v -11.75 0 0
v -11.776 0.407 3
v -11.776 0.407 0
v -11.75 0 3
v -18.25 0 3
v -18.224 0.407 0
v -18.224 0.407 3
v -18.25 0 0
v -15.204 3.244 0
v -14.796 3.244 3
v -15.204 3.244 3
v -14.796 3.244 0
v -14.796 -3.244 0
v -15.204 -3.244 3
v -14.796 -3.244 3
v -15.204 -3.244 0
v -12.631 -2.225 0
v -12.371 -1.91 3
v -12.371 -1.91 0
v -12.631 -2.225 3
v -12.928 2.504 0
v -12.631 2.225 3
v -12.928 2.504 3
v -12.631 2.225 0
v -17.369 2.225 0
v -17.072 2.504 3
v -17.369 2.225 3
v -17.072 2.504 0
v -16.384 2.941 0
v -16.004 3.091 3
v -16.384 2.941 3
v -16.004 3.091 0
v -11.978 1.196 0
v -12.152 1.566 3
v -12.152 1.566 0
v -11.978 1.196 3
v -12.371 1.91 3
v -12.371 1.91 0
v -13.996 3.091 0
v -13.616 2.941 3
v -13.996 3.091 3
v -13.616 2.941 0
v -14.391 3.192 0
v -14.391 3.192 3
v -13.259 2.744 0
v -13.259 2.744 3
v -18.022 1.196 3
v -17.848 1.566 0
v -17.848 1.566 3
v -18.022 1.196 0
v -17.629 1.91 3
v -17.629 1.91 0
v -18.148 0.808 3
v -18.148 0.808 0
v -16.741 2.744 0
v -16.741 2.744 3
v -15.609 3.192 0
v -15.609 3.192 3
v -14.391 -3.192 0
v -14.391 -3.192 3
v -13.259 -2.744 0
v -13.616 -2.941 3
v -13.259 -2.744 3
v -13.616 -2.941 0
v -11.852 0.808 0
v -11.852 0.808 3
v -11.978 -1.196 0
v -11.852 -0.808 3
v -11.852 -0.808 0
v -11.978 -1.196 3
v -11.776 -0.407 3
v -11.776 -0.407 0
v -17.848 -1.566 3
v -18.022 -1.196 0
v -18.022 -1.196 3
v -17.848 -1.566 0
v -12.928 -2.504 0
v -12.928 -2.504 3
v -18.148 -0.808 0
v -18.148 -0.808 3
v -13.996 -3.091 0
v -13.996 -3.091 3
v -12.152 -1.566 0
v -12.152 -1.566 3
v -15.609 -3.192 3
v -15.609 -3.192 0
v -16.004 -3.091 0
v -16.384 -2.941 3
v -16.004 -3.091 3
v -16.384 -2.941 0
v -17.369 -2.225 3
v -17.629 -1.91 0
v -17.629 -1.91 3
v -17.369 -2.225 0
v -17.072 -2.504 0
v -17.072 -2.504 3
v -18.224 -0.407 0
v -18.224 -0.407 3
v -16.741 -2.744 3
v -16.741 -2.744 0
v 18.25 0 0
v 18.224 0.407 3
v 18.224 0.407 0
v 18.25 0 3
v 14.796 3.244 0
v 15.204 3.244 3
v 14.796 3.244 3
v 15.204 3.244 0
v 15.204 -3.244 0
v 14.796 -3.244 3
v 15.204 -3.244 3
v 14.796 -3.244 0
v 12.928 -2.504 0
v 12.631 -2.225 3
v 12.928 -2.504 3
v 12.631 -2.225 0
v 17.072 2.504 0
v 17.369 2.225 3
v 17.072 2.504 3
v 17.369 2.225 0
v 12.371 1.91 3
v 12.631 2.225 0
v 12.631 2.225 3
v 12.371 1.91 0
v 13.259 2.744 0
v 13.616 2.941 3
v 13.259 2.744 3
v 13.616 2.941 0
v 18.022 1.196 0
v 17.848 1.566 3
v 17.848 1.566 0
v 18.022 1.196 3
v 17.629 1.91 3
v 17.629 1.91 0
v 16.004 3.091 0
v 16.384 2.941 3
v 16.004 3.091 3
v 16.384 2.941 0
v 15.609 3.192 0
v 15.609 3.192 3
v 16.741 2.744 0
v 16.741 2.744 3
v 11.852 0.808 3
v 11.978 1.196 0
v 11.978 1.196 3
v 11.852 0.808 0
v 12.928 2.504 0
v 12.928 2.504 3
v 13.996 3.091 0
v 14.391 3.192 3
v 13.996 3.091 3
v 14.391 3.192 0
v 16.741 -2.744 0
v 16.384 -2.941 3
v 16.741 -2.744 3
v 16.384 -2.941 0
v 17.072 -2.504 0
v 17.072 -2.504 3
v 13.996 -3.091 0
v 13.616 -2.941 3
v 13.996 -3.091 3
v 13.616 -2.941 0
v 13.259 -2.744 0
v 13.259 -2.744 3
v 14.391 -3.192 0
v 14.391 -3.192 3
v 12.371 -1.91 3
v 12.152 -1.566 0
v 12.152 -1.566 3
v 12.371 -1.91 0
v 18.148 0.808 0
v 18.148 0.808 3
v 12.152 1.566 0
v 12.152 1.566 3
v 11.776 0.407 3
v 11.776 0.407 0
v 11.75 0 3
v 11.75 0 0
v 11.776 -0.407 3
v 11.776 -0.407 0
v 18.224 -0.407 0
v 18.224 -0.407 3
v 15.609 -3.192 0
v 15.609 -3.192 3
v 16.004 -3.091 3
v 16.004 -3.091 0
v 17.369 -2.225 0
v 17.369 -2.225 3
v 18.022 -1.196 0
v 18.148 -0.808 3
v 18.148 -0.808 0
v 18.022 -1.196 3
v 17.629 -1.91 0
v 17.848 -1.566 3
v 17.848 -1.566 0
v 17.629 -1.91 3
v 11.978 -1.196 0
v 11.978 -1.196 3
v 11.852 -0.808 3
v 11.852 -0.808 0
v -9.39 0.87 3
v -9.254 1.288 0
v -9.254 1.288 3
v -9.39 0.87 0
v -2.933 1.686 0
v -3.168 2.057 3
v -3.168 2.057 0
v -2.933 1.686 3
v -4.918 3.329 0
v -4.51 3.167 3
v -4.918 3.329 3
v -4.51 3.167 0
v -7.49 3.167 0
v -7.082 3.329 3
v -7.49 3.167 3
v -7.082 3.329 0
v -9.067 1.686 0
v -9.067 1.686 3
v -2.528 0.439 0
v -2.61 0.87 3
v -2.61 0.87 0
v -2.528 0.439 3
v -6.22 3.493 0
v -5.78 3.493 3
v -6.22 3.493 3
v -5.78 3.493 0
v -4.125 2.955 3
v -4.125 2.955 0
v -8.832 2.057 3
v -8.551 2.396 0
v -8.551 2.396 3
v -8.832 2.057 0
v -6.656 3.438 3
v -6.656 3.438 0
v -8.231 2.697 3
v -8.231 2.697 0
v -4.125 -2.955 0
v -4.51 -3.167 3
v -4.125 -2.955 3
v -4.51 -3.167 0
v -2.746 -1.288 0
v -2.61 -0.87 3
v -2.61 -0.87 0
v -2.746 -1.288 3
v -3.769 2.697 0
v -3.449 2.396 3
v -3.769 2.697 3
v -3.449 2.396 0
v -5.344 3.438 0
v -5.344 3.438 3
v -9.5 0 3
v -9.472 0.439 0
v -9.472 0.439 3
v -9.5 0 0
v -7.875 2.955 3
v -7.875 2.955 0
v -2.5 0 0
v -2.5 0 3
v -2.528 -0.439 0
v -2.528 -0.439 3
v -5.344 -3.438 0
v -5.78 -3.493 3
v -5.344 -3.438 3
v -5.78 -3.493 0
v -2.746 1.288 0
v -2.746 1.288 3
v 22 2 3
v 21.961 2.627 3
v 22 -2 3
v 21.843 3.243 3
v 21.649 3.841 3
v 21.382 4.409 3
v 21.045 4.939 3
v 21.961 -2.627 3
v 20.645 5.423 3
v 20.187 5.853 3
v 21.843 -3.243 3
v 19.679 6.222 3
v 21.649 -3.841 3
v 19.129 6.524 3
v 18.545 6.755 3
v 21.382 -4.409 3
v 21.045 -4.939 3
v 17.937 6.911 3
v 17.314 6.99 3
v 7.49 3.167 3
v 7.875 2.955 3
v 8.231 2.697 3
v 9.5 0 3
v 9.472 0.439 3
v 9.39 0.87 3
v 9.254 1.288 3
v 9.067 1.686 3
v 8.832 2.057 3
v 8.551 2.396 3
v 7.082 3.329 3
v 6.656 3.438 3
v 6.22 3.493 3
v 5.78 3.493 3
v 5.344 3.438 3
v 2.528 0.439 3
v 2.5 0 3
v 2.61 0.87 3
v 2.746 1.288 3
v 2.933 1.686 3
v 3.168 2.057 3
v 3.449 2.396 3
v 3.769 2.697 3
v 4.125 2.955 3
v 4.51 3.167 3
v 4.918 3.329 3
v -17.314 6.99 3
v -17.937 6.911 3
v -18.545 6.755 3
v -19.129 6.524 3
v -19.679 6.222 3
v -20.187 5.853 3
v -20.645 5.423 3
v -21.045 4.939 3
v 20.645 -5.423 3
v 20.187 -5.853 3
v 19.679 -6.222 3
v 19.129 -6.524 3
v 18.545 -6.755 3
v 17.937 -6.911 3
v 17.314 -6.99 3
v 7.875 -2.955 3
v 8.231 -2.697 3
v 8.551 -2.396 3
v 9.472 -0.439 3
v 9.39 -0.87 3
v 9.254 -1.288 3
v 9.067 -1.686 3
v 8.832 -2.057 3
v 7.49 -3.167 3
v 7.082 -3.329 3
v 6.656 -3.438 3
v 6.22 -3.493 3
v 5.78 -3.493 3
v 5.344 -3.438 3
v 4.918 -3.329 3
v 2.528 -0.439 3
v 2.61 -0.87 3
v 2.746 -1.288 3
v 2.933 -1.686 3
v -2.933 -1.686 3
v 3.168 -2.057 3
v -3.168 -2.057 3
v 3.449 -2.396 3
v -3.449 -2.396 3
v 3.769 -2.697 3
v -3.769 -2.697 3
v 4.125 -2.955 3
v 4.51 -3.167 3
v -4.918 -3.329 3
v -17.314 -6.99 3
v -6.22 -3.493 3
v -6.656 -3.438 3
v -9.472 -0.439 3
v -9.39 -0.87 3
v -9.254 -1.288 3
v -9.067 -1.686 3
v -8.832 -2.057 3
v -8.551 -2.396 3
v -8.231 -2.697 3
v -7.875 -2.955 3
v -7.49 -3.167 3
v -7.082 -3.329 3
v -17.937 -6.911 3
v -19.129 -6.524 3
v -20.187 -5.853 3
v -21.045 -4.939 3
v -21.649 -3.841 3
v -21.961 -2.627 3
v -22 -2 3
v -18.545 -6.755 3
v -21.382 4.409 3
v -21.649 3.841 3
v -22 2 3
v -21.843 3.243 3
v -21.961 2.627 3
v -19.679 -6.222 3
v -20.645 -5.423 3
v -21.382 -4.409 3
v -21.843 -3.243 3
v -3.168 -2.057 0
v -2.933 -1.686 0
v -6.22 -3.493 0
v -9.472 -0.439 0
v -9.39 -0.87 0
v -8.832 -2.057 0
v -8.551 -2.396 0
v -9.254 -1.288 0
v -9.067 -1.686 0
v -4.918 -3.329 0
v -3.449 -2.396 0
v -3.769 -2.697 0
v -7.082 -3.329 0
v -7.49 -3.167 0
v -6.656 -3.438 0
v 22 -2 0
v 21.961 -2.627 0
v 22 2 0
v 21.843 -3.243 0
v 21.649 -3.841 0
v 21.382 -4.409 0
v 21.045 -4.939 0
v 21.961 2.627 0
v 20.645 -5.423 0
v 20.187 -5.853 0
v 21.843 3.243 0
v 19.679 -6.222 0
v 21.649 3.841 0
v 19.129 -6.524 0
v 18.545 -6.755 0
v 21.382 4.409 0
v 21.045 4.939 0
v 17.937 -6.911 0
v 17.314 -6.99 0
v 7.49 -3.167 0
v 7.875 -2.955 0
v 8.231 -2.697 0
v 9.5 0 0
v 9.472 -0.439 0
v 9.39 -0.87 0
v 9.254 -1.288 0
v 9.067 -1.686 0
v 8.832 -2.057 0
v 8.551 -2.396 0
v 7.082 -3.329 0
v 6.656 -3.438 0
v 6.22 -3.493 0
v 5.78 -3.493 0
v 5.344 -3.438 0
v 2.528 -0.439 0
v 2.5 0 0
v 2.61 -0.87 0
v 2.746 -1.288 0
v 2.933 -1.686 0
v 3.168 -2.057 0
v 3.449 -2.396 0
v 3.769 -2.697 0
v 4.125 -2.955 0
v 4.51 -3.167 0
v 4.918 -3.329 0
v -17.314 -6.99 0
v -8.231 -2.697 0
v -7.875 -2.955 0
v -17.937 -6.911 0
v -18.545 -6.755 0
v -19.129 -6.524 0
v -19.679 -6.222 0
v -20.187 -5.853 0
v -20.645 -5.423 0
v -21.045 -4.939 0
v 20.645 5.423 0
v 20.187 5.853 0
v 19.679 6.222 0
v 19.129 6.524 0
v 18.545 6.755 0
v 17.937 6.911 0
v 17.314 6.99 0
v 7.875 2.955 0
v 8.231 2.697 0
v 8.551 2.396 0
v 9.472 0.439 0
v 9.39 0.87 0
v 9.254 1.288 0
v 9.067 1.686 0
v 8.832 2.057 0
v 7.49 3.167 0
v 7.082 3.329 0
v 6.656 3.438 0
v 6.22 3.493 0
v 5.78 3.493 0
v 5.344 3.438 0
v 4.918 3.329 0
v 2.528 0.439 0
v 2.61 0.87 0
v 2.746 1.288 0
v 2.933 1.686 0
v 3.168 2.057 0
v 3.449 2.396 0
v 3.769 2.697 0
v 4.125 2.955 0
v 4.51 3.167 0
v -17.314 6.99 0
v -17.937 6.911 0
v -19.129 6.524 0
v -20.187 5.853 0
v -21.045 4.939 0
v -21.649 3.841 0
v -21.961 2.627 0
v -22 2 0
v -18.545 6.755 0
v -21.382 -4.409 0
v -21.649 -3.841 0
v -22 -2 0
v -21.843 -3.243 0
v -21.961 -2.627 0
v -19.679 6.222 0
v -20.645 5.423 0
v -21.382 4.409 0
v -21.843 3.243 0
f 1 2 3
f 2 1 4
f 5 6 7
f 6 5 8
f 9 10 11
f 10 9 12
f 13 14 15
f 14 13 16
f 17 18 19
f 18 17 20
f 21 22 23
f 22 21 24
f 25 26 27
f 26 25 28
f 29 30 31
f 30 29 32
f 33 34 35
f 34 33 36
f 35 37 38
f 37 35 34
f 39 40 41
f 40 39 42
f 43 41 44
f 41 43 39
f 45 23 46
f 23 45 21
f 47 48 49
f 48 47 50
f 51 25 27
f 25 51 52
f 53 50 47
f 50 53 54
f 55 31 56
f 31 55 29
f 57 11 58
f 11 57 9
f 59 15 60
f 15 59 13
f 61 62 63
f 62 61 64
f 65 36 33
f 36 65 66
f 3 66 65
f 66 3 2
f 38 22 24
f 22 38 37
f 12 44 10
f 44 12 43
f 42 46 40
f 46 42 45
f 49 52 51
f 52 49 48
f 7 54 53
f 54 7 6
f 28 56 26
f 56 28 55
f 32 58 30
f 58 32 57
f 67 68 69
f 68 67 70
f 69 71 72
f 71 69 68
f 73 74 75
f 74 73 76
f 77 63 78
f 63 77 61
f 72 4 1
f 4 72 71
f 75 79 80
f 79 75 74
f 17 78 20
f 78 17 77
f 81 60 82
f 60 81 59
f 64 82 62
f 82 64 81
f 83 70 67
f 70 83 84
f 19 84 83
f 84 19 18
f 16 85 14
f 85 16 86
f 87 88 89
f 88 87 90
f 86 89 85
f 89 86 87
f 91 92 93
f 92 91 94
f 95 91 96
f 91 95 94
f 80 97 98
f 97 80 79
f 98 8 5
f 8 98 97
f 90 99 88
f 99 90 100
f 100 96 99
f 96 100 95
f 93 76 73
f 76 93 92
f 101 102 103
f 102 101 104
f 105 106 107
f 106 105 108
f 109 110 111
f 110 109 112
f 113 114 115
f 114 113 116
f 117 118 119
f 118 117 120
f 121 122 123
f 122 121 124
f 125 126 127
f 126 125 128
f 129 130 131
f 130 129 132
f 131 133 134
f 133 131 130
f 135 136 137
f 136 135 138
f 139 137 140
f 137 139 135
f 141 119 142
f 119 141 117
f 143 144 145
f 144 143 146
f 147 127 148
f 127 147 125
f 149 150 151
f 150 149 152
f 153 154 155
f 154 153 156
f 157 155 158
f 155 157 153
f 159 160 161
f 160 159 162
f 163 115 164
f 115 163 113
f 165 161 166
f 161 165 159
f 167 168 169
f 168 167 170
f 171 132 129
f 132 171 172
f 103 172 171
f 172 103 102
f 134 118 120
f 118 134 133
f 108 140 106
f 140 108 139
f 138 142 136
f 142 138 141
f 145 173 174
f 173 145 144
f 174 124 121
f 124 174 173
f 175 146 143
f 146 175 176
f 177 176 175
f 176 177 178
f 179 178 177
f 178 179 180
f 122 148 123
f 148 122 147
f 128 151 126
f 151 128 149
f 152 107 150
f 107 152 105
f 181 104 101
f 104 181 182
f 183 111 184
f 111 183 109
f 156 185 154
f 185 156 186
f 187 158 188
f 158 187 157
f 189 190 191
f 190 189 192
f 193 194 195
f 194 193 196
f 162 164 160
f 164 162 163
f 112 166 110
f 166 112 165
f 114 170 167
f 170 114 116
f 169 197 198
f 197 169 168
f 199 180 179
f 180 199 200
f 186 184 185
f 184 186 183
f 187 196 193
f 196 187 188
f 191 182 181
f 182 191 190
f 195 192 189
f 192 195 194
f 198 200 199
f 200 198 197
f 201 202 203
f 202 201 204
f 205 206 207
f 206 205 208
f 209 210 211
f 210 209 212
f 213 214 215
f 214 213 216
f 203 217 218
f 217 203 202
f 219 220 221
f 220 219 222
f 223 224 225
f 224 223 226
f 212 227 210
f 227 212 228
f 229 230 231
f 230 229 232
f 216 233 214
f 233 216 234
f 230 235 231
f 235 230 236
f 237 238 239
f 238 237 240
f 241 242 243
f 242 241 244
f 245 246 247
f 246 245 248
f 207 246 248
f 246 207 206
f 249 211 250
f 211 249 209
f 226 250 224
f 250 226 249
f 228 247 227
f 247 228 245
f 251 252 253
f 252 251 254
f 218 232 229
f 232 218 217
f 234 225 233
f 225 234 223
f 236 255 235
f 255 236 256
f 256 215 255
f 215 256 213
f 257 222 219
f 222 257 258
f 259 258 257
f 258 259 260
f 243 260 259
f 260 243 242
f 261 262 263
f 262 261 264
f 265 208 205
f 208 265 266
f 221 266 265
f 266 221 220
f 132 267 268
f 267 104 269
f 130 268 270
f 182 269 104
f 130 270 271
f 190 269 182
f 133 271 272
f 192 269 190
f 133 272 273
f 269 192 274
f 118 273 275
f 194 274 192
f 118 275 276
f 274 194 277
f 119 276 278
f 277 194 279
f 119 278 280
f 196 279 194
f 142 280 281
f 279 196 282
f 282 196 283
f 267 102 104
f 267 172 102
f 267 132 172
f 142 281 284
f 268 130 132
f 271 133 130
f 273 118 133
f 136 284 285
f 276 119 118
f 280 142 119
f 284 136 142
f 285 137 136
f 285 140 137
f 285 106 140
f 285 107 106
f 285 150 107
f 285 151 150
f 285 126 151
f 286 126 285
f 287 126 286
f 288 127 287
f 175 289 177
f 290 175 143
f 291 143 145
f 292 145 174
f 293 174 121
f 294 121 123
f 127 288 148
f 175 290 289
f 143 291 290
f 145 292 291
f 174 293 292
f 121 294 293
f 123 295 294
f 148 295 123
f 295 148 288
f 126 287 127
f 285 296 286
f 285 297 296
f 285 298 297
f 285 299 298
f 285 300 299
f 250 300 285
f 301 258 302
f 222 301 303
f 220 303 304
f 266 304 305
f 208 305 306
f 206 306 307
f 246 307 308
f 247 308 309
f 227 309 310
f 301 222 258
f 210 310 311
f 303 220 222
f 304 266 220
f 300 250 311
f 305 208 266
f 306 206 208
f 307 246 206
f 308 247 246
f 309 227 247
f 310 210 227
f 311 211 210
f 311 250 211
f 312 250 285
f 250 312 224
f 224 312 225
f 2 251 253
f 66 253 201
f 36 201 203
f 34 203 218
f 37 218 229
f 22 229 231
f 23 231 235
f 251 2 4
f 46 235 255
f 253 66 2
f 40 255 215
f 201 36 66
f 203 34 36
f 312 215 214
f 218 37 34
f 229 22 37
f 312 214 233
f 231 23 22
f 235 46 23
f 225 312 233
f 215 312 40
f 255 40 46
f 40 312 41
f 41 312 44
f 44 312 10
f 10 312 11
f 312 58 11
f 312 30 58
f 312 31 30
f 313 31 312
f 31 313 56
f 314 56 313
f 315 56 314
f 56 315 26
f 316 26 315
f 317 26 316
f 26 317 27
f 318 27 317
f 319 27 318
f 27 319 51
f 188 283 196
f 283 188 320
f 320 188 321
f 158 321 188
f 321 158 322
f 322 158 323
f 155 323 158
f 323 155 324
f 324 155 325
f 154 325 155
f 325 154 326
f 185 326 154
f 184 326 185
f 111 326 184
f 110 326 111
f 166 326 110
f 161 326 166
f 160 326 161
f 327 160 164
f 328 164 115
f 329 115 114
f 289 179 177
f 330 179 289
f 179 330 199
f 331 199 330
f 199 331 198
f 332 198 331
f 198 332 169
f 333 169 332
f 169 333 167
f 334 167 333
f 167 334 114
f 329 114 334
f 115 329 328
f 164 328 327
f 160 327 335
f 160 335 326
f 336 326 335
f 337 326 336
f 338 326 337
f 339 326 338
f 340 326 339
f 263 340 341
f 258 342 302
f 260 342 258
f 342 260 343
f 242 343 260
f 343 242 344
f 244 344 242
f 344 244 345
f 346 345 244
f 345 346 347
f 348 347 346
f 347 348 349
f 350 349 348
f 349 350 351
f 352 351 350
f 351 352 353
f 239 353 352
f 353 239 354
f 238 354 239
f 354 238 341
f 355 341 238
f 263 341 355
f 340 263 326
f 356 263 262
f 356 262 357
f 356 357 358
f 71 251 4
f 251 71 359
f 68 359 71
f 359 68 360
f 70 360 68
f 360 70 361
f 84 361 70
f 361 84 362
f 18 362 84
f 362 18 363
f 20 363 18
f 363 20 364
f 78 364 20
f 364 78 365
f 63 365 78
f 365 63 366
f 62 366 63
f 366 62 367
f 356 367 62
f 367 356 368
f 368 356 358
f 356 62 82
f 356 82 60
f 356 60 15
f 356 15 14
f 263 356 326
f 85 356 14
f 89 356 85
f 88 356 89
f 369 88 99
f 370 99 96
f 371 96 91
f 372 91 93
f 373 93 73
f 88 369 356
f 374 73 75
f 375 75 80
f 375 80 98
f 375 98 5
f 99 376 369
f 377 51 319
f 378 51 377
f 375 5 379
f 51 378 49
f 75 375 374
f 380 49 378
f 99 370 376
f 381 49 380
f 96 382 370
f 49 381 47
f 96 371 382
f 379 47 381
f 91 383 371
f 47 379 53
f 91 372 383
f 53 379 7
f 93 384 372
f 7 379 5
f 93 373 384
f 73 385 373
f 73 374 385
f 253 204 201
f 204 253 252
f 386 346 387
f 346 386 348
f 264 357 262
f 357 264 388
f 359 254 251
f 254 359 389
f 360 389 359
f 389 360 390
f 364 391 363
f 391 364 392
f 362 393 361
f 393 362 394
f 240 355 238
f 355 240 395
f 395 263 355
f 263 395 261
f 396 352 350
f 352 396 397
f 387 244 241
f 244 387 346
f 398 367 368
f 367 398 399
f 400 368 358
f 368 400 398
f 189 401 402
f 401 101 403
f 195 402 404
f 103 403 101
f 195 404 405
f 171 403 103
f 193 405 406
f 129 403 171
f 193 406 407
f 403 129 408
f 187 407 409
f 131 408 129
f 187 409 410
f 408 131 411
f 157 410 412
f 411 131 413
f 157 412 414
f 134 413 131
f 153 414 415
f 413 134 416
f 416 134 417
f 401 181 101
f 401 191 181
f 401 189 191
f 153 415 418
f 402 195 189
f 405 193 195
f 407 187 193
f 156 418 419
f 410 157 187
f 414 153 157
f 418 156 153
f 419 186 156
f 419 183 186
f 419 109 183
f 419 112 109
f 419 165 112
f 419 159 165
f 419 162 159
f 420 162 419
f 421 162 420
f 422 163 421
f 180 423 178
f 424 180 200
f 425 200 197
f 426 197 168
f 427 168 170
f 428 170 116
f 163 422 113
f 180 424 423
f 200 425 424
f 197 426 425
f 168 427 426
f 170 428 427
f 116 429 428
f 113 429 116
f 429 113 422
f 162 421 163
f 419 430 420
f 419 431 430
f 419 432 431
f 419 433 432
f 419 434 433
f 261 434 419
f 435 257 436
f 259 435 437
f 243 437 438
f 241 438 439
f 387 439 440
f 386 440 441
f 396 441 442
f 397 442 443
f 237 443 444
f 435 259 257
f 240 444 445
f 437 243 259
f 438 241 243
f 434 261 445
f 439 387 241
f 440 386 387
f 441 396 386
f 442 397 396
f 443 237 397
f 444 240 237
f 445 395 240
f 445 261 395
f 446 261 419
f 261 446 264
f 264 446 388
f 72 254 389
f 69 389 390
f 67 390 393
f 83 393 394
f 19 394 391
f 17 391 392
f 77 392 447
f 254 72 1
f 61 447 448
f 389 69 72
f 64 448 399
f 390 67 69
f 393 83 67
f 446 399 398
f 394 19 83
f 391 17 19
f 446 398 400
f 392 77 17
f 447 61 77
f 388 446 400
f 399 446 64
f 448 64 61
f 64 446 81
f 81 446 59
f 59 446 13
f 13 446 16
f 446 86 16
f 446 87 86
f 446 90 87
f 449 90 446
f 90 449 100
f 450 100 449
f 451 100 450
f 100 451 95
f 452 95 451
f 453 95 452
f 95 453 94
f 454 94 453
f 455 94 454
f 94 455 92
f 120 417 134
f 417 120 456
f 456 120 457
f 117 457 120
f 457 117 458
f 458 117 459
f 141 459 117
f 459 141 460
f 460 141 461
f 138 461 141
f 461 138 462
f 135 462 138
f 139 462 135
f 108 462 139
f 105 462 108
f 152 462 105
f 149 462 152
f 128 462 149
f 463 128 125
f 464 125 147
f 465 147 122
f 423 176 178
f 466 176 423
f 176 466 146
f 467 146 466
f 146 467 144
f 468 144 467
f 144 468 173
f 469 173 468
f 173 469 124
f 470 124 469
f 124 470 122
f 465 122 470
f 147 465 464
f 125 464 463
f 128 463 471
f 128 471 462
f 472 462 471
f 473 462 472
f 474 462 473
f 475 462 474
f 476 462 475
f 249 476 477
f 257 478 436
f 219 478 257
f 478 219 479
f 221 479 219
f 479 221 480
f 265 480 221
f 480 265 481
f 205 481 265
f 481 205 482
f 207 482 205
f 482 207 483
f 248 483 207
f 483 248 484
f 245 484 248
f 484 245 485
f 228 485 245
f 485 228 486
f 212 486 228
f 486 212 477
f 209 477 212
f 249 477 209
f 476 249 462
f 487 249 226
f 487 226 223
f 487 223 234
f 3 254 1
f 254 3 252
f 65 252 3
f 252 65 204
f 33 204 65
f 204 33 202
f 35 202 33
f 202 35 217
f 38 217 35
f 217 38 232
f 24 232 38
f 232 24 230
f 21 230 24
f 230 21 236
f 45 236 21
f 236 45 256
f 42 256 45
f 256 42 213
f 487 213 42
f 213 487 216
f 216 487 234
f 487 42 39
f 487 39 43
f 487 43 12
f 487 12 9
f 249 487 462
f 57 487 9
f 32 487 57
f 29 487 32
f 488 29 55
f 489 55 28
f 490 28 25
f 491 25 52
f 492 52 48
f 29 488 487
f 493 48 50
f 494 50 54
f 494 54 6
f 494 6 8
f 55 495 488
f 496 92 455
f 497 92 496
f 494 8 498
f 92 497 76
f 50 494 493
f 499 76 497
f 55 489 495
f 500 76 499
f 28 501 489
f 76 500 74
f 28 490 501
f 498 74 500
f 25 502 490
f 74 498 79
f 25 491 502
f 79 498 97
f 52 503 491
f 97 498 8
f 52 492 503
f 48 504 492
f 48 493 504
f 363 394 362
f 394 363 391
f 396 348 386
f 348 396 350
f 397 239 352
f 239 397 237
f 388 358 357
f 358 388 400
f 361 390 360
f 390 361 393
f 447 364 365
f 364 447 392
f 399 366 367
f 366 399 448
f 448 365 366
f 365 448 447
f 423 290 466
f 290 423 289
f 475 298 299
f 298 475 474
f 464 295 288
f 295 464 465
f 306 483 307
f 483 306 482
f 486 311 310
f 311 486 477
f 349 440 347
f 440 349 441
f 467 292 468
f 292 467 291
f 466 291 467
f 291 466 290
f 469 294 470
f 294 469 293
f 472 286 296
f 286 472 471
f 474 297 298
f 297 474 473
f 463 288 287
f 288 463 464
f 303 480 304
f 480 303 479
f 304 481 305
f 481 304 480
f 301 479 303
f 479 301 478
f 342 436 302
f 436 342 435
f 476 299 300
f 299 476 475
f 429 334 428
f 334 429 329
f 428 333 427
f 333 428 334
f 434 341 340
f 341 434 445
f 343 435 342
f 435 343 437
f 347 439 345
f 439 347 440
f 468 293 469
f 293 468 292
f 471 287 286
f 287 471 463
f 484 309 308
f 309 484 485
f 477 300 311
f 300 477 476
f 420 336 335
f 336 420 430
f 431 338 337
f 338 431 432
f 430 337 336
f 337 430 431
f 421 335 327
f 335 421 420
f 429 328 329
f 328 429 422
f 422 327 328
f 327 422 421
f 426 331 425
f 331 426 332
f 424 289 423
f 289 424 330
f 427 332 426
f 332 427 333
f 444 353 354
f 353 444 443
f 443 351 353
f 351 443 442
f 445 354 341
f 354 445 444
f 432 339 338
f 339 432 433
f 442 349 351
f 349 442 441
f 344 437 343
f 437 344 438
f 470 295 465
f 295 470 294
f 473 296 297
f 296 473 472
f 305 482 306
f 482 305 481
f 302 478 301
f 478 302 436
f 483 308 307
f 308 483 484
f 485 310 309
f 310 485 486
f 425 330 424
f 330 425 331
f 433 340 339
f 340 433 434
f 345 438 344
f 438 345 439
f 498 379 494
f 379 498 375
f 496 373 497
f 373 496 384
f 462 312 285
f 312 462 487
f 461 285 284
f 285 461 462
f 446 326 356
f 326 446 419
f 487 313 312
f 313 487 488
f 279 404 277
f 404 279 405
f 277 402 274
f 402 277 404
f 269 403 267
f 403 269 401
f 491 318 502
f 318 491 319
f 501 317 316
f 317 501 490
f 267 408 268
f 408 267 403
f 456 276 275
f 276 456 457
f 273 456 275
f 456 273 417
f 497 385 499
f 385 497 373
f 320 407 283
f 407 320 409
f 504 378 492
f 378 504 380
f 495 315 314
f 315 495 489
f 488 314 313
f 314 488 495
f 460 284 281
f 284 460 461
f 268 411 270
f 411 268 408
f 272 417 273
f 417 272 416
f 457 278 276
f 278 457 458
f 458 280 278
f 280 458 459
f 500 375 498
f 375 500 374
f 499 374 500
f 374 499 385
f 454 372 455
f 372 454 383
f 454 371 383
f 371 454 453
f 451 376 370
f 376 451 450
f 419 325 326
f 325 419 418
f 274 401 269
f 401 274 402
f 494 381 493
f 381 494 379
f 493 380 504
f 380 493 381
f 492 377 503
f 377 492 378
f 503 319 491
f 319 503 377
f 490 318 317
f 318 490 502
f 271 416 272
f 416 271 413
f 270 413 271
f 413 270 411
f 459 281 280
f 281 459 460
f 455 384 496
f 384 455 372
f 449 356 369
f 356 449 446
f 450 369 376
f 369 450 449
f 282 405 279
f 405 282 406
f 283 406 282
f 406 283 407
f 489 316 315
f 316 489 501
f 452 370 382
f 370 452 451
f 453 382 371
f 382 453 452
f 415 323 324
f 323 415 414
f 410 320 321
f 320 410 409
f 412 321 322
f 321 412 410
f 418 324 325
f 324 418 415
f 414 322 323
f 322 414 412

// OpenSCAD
$fn = 50;


difference() {
	union() {
		hull() {
			translate(v = [-17.0000000000, 2.0000000000, 0]) {
				cylinder(h = 3, r = 5);
			}
			translate(v = [17.0000000000, 2.0000000000, 0]) {
				cylinder(h = 3, r = 5);
			}
			translate(v = [-17.0000000000, -2.0000000000, 0]) {
				cylinder(h = 3, r = 5);
			}
			translate(v = [17.0000000000, -2.0000000000, 0]) {
				cylinder(h = 3, r = 5);
			}
		}
	}
	union() {
		#translate(v = [-15.0000000000, 0.0000000000, 0]) {
			cylinder(h = 3, r = 3.2500000000);
		}
		#translate(v = [15.0000000000, 0.0000000000, 0]) {
			cylinder(h = 3, r = 3.2500000000);
		}
		#translate(v = [-15.0000000000, 0.0000000000, -100.0000000000]) {
			cylinder(h = 200, r = 3.2500000000);
		}
		#translate(v = [-15.0000000000, 0.0000000000, -100.0000000000]) {
			cylinder(h = 200, r = 3.2500000000);
		}
		#translate(v = [15.0000000000, 0.0000000000, -100.0000000000]) {
			cylinder(h = 200, r = 3.2500000000);
		}
		#translate(v = [15.0000000000, 0.0000000000, -100.0000000000]) {
			cylinder(h = 200, r = 3.2500000000);
		}
		#translate(v = [-15.0000000000, 0.0000000000, 0]) {
			cylinder(h = 3, r = 1.8000000000);
		}
		#translate(v = [15.0000000000, 0.0000000000, 0]) {
			cylinder(h = 3, r = 1.8000000000);
		}
		#translate(v = [-15.0000000000, 0.0000000000, 0]) {
			cylinder(h = 3, r = 1.8000000000);
		}
		#translate(v = [15.0000000000, 0.0000000000, 0]) {
			cylinder(h = 3, r = 1.8000000000);
		}
		#translate(v = [-15.0000000000, 0.0000000000, 0]) {
			cylinder(h = 3, r = 1.8000000000);
		}
		#translate(v = [15.0000000000, 0.0000000000, 0]) {
			cylinder(h = 3, r = 1.8000000000);
		}
		#translate(v = [-6.0000000000, 0, 0]) {
			cylinder(h = 3, r = 3.5000000000);
		}
		#translate(v = [6.0000000000, 0, 0]) {
			cylinder(h = 3, r = 3.5000000000);
		}
	}
}
